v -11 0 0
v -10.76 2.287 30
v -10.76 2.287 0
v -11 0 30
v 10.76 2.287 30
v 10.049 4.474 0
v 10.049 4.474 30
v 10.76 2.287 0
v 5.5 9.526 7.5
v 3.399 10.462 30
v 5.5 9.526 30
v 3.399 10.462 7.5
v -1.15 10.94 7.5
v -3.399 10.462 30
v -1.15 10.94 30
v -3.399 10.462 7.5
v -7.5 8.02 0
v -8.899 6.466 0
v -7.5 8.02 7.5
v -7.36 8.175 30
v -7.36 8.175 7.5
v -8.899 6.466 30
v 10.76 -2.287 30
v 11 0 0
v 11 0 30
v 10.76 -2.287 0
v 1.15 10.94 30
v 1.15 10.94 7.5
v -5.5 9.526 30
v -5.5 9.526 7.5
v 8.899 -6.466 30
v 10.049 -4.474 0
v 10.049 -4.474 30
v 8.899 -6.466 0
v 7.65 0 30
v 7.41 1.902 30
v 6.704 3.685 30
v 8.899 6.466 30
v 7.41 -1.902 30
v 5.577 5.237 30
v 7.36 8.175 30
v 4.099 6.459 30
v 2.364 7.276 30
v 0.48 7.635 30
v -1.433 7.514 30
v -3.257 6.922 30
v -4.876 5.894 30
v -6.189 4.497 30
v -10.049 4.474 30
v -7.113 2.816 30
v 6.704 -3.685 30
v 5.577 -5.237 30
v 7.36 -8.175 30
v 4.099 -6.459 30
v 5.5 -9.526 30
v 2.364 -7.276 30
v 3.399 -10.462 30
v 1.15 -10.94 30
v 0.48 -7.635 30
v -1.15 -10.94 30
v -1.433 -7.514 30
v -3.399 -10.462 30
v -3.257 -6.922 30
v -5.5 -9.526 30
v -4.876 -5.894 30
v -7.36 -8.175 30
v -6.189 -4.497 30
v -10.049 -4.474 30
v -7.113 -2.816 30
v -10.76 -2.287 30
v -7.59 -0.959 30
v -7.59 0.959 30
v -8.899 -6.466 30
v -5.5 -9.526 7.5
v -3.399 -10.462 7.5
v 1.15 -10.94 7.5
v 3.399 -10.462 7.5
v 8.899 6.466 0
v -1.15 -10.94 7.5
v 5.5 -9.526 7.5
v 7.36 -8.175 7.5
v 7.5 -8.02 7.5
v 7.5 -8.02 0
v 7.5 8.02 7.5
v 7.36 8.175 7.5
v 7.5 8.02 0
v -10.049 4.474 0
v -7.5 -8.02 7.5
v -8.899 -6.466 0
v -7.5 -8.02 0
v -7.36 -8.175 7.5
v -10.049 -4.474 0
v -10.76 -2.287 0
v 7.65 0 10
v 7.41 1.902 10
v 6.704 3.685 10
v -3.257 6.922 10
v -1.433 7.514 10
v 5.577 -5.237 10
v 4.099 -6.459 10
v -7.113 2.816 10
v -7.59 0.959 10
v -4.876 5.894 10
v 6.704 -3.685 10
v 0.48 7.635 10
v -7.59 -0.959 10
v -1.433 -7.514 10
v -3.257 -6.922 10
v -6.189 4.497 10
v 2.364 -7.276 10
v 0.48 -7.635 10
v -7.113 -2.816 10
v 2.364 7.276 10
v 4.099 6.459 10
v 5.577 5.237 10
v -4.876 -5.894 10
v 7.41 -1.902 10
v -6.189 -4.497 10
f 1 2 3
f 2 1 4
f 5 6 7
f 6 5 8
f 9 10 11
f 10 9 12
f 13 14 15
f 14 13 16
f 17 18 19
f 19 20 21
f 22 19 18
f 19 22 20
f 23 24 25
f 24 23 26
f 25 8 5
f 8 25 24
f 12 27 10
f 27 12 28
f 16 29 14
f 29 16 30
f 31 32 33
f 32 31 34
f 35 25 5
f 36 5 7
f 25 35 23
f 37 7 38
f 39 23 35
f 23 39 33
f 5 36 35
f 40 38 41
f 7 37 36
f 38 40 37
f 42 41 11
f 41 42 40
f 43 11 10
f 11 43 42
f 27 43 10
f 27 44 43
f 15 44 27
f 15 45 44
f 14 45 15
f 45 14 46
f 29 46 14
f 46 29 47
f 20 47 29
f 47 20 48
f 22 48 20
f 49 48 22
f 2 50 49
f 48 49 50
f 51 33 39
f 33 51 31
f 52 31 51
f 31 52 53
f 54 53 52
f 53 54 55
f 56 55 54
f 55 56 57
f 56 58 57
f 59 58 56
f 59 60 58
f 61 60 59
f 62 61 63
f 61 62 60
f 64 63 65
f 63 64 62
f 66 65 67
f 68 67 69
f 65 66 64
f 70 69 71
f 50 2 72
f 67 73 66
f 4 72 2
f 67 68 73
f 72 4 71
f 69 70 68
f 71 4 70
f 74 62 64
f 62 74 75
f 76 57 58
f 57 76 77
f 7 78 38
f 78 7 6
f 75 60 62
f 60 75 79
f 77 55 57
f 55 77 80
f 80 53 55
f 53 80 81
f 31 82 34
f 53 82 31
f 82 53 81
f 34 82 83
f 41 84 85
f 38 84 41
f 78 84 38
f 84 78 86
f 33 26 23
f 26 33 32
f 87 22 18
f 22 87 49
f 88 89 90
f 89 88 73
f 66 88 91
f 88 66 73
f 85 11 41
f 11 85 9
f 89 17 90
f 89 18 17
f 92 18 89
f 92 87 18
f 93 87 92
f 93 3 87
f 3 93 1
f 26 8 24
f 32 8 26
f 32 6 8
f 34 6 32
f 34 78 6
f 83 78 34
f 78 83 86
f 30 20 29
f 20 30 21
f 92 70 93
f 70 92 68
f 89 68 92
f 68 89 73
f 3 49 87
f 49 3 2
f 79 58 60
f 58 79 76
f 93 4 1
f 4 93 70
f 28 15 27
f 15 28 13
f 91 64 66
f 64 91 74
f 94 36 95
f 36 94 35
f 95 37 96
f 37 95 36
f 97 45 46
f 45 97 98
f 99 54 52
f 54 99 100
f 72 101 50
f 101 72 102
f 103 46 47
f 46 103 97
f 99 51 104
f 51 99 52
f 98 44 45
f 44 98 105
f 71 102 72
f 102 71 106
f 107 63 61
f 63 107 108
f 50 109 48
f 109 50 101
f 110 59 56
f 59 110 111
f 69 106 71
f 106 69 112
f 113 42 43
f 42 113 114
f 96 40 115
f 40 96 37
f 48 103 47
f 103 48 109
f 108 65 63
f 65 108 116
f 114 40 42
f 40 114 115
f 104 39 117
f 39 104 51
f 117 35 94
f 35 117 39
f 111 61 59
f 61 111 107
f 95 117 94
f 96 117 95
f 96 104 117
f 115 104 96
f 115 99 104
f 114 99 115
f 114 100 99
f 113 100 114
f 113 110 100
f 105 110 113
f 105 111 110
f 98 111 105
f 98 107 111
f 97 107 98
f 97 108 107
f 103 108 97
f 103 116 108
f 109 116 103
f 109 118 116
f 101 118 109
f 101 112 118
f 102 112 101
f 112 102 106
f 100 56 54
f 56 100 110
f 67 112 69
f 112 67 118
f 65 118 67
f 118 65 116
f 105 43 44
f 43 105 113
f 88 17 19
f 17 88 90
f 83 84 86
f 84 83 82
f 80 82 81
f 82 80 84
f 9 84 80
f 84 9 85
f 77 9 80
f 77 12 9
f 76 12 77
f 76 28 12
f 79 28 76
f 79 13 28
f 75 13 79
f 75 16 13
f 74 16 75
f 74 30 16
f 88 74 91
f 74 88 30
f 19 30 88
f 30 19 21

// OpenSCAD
include <threads.scad>;

difference() {
    translate([0, 0, 15])
        cylinder(h=30, r1=11.0, r2=11.0, center=true);
    translate([0, 0, 20])
        #cylinder(h=20, r1=7.65, r2=7.65, center=true);
    translate([0, 0, 0])
        rotate([90, 0, 0])
            #cube([15, 15, 30], center=true);
}
